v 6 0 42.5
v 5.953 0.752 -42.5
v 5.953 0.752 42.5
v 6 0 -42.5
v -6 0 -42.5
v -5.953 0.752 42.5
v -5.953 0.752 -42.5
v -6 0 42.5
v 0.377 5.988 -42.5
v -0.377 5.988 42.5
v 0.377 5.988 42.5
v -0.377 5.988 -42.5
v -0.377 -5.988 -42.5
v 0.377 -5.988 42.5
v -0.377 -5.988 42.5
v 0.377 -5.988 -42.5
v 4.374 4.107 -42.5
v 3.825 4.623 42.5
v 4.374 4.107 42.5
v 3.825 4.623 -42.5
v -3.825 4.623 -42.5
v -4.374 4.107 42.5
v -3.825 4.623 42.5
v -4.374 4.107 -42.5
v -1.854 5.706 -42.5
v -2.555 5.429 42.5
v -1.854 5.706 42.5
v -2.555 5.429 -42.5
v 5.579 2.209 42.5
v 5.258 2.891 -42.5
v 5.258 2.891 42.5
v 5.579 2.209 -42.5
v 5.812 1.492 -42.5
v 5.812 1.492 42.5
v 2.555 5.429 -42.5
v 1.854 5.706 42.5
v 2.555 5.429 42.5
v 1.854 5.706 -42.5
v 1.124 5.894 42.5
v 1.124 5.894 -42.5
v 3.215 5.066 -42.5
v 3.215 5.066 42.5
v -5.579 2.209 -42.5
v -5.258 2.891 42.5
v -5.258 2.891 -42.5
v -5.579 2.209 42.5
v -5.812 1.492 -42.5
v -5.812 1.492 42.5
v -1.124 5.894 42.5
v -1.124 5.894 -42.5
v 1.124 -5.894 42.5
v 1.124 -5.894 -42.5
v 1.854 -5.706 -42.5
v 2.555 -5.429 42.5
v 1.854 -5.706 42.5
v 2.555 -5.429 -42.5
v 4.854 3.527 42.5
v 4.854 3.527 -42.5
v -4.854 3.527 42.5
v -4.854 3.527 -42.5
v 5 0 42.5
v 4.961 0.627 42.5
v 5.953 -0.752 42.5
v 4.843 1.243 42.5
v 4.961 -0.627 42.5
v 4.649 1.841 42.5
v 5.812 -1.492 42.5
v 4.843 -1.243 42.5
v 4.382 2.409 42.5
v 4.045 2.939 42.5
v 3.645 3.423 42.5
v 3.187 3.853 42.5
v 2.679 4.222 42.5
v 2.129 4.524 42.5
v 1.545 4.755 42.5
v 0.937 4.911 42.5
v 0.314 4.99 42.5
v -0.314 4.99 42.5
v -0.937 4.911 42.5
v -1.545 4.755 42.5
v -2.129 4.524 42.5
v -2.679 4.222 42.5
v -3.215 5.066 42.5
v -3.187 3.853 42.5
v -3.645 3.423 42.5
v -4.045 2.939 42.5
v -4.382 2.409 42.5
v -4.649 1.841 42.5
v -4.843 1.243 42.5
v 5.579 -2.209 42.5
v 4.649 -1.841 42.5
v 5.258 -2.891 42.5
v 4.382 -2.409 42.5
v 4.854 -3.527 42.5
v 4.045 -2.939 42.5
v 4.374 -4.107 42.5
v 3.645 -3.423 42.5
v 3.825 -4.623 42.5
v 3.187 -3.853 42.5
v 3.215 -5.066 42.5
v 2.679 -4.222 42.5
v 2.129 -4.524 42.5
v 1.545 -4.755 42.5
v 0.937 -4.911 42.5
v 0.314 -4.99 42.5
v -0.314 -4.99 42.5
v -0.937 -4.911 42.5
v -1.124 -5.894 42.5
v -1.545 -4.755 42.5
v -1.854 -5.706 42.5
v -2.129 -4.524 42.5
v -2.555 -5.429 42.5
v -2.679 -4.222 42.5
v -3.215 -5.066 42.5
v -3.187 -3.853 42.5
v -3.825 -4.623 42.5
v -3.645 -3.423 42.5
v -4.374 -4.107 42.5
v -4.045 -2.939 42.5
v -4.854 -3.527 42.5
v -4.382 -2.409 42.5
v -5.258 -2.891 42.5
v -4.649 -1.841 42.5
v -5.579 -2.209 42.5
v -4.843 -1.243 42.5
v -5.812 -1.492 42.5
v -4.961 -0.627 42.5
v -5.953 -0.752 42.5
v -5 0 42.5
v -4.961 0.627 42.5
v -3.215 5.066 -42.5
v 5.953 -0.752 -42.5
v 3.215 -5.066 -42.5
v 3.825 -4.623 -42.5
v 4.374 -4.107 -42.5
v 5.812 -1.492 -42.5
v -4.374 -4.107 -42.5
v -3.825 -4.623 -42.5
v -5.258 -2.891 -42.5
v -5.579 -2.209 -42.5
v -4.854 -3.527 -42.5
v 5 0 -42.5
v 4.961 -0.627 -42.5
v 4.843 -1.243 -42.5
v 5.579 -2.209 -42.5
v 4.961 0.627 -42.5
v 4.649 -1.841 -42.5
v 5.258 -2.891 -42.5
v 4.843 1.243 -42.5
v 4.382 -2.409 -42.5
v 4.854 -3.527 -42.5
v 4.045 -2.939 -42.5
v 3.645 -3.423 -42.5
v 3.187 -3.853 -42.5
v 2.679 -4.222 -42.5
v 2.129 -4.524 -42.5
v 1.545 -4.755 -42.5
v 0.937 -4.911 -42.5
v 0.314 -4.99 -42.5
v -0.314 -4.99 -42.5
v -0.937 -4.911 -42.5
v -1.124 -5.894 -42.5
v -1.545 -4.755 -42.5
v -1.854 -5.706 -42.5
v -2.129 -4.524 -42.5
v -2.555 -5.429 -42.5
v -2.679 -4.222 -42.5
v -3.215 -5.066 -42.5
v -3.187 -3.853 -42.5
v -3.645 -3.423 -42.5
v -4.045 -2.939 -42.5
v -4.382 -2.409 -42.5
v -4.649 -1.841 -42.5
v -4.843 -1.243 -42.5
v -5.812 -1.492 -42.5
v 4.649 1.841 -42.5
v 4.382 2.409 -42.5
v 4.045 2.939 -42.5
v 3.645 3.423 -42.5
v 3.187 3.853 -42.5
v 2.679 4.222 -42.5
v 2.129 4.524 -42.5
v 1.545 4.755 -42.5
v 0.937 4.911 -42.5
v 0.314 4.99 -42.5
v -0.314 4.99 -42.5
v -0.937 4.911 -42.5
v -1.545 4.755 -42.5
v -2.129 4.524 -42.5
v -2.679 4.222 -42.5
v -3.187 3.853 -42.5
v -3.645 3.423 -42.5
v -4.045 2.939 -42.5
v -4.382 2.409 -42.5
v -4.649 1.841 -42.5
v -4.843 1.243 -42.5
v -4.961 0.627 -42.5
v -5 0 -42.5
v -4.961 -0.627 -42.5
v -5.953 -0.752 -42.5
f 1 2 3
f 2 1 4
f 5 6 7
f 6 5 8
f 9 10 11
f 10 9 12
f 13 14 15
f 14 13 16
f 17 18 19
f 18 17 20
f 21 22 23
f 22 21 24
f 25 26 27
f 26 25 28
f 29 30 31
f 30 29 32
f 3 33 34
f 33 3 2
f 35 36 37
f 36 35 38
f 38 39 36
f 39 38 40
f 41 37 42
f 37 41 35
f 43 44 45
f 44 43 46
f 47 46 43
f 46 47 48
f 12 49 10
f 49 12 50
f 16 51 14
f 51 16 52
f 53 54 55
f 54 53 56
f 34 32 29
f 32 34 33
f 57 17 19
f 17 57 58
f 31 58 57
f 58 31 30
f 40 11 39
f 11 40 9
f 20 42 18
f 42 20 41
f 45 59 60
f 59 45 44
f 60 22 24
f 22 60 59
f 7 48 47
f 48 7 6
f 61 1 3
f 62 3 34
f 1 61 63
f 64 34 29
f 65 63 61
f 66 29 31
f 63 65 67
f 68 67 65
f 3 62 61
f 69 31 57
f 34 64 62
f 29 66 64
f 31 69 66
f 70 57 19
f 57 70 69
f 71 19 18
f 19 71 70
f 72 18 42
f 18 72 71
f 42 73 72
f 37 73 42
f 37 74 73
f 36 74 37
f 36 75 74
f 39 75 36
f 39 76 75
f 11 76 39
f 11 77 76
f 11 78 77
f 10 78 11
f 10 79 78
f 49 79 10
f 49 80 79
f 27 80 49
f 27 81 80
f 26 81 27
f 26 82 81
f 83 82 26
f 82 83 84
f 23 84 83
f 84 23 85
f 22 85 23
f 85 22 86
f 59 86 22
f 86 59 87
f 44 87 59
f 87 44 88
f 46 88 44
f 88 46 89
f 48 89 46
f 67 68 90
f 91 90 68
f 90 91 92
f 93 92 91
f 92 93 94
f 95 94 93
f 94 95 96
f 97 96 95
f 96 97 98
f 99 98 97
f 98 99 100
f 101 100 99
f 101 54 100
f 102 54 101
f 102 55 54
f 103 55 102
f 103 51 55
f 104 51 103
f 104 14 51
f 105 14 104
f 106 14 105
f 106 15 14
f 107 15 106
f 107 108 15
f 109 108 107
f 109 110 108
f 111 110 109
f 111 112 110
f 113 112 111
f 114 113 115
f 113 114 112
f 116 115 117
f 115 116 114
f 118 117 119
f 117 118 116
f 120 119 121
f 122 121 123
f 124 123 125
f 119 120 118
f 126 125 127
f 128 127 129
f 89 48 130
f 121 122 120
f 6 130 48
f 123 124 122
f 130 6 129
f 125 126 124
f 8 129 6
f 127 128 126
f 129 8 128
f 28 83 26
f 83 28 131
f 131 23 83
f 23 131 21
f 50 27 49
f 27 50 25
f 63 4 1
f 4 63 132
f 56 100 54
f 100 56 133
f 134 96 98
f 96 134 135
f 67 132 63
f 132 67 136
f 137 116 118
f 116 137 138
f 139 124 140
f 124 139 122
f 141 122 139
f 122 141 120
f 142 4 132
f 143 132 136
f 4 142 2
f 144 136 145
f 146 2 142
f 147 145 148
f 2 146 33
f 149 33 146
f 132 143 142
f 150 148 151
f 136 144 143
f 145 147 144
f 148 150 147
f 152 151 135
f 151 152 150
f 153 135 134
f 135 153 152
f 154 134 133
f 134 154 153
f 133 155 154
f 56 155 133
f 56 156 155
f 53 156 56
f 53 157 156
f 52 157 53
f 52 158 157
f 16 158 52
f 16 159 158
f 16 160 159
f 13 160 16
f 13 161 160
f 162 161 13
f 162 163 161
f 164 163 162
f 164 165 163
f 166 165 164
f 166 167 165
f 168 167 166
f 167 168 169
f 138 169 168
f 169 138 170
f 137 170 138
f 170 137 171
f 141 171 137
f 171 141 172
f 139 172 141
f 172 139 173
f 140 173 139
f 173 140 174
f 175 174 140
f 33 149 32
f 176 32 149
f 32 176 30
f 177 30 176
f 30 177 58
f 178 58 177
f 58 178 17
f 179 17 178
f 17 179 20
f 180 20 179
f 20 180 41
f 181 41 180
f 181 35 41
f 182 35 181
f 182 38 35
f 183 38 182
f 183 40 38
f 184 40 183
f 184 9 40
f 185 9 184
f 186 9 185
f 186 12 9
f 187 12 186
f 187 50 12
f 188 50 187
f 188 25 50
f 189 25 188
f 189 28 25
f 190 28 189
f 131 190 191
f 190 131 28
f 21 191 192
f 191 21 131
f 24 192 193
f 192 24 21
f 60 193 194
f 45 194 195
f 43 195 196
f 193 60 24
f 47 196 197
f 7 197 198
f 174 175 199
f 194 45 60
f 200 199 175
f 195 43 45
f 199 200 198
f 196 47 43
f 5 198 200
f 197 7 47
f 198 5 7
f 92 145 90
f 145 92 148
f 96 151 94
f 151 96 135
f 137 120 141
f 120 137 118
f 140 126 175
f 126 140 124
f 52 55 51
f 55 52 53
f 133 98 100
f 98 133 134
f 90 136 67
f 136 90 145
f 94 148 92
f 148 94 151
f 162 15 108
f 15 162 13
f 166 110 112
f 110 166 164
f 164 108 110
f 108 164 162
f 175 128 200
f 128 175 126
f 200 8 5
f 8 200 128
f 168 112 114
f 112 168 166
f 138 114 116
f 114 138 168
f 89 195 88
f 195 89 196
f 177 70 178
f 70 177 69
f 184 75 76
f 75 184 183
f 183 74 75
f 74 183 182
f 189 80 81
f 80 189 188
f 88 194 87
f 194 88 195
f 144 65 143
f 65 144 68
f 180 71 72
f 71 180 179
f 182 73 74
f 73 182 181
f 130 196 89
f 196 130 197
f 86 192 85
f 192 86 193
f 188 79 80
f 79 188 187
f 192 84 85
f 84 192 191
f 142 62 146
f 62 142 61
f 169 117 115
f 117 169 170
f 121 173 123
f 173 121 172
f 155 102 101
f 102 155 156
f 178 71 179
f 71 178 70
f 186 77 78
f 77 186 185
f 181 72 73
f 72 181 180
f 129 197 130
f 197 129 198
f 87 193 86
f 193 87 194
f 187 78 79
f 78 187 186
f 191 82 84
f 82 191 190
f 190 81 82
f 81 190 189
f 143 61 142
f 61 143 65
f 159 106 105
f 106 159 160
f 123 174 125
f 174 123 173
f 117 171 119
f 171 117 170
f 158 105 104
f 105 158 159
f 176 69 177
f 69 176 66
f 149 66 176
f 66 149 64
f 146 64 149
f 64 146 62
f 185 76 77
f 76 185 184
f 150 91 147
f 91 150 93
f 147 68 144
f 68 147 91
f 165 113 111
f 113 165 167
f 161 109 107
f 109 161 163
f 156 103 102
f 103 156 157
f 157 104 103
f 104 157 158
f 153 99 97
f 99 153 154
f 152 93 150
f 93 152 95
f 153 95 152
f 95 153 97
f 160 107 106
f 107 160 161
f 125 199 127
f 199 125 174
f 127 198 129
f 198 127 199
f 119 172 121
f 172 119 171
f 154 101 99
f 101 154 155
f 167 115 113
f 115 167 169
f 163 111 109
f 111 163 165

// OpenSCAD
$fn = 50;


difference() {
	union() {
		translate(v = [0, 0, -42.5000000000]) {
			cylinder(h = 85, r = 6.0000000000);
		}
	}
	union() {
		translate(v = [0, 0, -100.0000000000]) {
			cylinder(h = 200, r = 5);
		}
	}
}
